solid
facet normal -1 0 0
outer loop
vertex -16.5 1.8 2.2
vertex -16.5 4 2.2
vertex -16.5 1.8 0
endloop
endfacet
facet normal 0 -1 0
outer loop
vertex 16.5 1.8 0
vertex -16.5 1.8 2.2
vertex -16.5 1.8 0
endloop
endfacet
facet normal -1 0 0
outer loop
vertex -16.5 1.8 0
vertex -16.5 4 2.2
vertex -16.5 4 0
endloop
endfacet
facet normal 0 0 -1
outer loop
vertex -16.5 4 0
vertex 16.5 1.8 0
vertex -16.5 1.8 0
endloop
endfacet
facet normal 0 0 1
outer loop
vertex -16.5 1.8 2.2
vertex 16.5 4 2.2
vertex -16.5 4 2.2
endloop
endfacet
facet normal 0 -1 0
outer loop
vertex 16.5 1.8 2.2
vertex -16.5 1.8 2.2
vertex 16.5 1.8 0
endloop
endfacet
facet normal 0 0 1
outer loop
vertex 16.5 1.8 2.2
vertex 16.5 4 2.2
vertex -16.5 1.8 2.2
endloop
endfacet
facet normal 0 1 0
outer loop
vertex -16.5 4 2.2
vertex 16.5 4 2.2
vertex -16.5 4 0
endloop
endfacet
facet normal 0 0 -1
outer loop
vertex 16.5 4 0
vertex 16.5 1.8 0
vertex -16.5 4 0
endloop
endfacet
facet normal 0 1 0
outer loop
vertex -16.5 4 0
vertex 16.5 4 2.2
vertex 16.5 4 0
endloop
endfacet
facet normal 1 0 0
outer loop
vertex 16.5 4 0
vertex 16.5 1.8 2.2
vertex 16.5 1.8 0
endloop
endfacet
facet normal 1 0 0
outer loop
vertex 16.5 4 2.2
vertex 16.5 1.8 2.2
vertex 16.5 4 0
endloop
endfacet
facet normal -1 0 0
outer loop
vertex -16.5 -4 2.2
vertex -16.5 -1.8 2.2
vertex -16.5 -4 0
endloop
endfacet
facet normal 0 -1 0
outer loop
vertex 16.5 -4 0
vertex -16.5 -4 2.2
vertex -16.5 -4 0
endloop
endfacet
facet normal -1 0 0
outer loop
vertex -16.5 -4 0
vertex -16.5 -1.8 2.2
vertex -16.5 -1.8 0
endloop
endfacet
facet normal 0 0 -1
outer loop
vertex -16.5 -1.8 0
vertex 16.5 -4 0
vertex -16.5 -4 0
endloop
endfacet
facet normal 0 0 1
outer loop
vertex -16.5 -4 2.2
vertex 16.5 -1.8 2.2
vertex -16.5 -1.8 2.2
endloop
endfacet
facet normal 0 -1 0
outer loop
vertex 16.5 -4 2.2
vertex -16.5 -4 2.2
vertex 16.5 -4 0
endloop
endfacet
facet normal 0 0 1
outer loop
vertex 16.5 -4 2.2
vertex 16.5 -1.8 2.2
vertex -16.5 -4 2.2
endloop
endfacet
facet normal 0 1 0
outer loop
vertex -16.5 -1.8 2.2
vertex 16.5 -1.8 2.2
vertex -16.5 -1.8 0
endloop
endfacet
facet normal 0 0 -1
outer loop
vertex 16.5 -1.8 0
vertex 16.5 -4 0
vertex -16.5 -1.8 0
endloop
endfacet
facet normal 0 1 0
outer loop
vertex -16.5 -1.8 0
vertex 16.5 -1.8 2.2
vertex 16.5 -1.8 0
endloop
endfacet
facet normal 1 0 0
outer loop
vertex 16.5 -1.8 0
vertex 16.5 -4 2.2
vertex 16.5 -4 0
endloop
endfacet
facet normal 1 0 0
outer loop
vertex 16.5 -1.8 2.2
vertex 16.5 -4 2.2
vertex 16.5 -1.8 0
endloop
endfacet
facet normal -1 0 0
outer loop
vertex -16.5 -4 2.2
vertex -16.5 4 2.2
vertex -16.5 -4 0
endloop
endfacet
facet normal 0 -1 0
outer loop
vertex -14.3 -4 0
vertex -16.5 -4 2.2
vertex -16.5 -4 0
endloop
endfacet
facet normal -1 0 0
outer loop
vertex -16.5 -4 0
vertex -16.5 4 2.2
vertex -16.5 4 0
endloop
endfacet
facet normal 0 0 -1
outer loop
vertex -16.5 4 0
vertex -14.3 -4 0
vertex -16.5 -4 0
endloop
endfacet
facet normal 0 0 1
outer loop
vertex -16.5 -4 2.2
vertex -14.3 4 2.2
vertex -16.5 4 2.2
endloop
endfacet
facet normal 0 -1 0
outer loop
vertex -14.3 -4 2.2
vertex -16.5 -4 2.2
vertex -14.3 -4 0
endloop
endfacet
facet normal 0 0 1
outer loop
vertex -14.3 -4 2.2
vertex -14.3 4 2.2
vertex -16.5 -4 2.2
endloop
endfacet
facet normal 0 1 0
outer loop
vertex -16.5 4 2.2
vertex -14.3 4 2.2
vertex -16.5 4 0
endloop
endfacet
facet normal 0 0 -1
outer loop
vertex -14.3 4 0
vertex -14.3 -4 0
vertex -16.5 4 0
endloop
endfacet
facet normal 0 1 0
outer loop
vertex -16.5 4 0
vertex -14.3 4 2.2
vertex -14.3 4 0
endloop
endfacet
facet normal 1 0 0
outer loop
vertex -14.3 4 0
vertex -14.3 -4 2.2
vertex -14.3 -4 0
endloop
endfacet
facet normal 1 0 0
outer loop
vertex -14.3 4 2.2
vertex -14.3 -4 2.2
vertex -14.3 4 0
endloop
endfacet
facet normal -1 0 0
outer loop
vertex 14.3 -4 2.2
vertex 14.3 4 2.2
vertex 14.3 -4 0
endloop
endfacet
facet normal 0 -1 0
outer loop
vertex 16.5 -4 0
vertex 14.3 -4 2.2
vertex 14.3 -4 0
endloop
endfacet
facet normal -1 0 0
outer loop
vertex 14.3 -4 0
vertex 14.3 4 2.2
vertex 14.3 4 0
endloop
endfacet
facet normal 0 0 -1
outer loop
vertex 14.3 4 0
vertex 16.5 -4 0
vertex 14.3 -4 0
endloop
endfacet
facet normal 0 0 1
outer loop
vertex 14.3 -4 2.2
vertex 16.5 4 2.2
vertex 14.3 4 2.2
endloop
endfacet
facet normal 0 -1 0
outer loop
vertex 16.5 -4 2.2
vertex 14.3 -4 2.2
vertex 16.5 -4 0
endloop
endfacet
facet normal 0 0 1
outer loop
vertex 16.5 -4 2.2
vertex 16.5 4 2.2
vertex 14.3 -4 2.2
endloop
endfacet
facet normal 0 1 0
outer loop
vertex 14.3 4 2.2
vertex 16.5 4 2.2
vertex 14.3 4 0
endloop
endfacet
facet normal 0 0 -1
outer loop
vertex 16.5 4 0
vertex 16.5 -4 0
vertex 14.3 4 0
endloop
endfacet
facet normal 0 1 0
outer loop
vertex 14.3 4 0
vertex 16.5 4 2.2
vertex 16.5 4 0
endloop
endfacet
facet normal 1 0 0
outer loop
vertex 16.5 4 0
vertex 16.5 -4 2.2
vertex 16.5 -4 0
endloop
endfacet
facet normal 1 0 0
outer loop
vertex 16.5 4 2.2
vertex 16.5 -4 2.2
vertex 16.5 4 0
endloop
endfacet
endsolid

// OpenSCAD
/*
Yamper V11 mesh source for yamper_v11_oled_retainer_print_2x.stl
Units: millimeters

This source keeps the restored V11 STL geometry as a plain OpenSCAD polyhedron.
It is not a new redesign. It exists so the CAD source, STL, and STEP exports stay together.
*/

module yamper_v11_oled_retainer_print_2x() {
    pts = [
        [-16.5, 1.8, 2.2],
        [-16.5, 4, 2.2],
        [-16.5, 1.8, 0],
        [16.5, 1.8, 0],
        [-16.5, 4, 0],
        [16.5, 4, 2.2],
        [16.5, 1.8, 2.2],
        [16.5, 4, 0],
        [-16.5, -4, 2.2],
        [-16.5, -1.8, 2.2],
        [-16.5, -4, 0],
        [16.5, -4, 0],
        [-16.5, -1.8, 0],
        [16.5, -1.8, 2.2],
        [16.5, -4, 2.2],
        [16.5, -1.8, 0],
        [-14.3, -4, 0],
        [-14.3, 4, 2.2],
        [-14.3, -4, 2.2],
        [-14.3, 4, 0],
        [14.3, -4, 2.2],
        [14.3, 4, 2.2],
        [14.3, -4, 0],
        [14.3, 4, 0],
    ];

    tris = [
        [0, 1, 2],
        [3, 0, 2],
        [2, 1, 4],
        [4, 3, 2],
        [0, 5, 1],
        [6, 0, 3],
        [6, 5, 0],
        [1, 5, 4],
        [7, 3, 4],
        [4, 5, 7],
        [7, 6, 3],
        [5, 6, 7],
        [8, 9, 10],
        [11, 8, 10],
        [10, 9, 12],
        [12, 11, 10],
        [8, 13, 9],
        [14, 8, 11],
        [14, 13, 8],
        [9, 13, 12],
        [15, 11, 12],
        [12, 13, 15],
        [15, 14, 11],
        [13, 14, 15],
        [8, 1, 10],
        [16, 8, 10],
        [10, 1, 4],
        [4, 16, 10],
        [8, 17, 1],
        [18, 8, 16],
        [18, 17, 8],
        [1, 17, 4],
        [19, 16, 4],
        [4, 17, 19],
        [19, 18, 16],
        [17, 18, 19],
        [20, 21, 22],
        [11, 20, 22],
        [22, 21, 23],
        [23, 11, 22],
        [20, 5, 21],
        [14, 20, 11],
        [14, 5, 20],
        [21, 5, 23],
        [7, 11, 23],
        [23, 5, 7],
        [7, 14, 11],
        [5, 14, 7],
    ];

    polyhedron(points = pts, faces = tris, convexity = 10);
}

yamper_v11_oled_retainer_print_2x();
